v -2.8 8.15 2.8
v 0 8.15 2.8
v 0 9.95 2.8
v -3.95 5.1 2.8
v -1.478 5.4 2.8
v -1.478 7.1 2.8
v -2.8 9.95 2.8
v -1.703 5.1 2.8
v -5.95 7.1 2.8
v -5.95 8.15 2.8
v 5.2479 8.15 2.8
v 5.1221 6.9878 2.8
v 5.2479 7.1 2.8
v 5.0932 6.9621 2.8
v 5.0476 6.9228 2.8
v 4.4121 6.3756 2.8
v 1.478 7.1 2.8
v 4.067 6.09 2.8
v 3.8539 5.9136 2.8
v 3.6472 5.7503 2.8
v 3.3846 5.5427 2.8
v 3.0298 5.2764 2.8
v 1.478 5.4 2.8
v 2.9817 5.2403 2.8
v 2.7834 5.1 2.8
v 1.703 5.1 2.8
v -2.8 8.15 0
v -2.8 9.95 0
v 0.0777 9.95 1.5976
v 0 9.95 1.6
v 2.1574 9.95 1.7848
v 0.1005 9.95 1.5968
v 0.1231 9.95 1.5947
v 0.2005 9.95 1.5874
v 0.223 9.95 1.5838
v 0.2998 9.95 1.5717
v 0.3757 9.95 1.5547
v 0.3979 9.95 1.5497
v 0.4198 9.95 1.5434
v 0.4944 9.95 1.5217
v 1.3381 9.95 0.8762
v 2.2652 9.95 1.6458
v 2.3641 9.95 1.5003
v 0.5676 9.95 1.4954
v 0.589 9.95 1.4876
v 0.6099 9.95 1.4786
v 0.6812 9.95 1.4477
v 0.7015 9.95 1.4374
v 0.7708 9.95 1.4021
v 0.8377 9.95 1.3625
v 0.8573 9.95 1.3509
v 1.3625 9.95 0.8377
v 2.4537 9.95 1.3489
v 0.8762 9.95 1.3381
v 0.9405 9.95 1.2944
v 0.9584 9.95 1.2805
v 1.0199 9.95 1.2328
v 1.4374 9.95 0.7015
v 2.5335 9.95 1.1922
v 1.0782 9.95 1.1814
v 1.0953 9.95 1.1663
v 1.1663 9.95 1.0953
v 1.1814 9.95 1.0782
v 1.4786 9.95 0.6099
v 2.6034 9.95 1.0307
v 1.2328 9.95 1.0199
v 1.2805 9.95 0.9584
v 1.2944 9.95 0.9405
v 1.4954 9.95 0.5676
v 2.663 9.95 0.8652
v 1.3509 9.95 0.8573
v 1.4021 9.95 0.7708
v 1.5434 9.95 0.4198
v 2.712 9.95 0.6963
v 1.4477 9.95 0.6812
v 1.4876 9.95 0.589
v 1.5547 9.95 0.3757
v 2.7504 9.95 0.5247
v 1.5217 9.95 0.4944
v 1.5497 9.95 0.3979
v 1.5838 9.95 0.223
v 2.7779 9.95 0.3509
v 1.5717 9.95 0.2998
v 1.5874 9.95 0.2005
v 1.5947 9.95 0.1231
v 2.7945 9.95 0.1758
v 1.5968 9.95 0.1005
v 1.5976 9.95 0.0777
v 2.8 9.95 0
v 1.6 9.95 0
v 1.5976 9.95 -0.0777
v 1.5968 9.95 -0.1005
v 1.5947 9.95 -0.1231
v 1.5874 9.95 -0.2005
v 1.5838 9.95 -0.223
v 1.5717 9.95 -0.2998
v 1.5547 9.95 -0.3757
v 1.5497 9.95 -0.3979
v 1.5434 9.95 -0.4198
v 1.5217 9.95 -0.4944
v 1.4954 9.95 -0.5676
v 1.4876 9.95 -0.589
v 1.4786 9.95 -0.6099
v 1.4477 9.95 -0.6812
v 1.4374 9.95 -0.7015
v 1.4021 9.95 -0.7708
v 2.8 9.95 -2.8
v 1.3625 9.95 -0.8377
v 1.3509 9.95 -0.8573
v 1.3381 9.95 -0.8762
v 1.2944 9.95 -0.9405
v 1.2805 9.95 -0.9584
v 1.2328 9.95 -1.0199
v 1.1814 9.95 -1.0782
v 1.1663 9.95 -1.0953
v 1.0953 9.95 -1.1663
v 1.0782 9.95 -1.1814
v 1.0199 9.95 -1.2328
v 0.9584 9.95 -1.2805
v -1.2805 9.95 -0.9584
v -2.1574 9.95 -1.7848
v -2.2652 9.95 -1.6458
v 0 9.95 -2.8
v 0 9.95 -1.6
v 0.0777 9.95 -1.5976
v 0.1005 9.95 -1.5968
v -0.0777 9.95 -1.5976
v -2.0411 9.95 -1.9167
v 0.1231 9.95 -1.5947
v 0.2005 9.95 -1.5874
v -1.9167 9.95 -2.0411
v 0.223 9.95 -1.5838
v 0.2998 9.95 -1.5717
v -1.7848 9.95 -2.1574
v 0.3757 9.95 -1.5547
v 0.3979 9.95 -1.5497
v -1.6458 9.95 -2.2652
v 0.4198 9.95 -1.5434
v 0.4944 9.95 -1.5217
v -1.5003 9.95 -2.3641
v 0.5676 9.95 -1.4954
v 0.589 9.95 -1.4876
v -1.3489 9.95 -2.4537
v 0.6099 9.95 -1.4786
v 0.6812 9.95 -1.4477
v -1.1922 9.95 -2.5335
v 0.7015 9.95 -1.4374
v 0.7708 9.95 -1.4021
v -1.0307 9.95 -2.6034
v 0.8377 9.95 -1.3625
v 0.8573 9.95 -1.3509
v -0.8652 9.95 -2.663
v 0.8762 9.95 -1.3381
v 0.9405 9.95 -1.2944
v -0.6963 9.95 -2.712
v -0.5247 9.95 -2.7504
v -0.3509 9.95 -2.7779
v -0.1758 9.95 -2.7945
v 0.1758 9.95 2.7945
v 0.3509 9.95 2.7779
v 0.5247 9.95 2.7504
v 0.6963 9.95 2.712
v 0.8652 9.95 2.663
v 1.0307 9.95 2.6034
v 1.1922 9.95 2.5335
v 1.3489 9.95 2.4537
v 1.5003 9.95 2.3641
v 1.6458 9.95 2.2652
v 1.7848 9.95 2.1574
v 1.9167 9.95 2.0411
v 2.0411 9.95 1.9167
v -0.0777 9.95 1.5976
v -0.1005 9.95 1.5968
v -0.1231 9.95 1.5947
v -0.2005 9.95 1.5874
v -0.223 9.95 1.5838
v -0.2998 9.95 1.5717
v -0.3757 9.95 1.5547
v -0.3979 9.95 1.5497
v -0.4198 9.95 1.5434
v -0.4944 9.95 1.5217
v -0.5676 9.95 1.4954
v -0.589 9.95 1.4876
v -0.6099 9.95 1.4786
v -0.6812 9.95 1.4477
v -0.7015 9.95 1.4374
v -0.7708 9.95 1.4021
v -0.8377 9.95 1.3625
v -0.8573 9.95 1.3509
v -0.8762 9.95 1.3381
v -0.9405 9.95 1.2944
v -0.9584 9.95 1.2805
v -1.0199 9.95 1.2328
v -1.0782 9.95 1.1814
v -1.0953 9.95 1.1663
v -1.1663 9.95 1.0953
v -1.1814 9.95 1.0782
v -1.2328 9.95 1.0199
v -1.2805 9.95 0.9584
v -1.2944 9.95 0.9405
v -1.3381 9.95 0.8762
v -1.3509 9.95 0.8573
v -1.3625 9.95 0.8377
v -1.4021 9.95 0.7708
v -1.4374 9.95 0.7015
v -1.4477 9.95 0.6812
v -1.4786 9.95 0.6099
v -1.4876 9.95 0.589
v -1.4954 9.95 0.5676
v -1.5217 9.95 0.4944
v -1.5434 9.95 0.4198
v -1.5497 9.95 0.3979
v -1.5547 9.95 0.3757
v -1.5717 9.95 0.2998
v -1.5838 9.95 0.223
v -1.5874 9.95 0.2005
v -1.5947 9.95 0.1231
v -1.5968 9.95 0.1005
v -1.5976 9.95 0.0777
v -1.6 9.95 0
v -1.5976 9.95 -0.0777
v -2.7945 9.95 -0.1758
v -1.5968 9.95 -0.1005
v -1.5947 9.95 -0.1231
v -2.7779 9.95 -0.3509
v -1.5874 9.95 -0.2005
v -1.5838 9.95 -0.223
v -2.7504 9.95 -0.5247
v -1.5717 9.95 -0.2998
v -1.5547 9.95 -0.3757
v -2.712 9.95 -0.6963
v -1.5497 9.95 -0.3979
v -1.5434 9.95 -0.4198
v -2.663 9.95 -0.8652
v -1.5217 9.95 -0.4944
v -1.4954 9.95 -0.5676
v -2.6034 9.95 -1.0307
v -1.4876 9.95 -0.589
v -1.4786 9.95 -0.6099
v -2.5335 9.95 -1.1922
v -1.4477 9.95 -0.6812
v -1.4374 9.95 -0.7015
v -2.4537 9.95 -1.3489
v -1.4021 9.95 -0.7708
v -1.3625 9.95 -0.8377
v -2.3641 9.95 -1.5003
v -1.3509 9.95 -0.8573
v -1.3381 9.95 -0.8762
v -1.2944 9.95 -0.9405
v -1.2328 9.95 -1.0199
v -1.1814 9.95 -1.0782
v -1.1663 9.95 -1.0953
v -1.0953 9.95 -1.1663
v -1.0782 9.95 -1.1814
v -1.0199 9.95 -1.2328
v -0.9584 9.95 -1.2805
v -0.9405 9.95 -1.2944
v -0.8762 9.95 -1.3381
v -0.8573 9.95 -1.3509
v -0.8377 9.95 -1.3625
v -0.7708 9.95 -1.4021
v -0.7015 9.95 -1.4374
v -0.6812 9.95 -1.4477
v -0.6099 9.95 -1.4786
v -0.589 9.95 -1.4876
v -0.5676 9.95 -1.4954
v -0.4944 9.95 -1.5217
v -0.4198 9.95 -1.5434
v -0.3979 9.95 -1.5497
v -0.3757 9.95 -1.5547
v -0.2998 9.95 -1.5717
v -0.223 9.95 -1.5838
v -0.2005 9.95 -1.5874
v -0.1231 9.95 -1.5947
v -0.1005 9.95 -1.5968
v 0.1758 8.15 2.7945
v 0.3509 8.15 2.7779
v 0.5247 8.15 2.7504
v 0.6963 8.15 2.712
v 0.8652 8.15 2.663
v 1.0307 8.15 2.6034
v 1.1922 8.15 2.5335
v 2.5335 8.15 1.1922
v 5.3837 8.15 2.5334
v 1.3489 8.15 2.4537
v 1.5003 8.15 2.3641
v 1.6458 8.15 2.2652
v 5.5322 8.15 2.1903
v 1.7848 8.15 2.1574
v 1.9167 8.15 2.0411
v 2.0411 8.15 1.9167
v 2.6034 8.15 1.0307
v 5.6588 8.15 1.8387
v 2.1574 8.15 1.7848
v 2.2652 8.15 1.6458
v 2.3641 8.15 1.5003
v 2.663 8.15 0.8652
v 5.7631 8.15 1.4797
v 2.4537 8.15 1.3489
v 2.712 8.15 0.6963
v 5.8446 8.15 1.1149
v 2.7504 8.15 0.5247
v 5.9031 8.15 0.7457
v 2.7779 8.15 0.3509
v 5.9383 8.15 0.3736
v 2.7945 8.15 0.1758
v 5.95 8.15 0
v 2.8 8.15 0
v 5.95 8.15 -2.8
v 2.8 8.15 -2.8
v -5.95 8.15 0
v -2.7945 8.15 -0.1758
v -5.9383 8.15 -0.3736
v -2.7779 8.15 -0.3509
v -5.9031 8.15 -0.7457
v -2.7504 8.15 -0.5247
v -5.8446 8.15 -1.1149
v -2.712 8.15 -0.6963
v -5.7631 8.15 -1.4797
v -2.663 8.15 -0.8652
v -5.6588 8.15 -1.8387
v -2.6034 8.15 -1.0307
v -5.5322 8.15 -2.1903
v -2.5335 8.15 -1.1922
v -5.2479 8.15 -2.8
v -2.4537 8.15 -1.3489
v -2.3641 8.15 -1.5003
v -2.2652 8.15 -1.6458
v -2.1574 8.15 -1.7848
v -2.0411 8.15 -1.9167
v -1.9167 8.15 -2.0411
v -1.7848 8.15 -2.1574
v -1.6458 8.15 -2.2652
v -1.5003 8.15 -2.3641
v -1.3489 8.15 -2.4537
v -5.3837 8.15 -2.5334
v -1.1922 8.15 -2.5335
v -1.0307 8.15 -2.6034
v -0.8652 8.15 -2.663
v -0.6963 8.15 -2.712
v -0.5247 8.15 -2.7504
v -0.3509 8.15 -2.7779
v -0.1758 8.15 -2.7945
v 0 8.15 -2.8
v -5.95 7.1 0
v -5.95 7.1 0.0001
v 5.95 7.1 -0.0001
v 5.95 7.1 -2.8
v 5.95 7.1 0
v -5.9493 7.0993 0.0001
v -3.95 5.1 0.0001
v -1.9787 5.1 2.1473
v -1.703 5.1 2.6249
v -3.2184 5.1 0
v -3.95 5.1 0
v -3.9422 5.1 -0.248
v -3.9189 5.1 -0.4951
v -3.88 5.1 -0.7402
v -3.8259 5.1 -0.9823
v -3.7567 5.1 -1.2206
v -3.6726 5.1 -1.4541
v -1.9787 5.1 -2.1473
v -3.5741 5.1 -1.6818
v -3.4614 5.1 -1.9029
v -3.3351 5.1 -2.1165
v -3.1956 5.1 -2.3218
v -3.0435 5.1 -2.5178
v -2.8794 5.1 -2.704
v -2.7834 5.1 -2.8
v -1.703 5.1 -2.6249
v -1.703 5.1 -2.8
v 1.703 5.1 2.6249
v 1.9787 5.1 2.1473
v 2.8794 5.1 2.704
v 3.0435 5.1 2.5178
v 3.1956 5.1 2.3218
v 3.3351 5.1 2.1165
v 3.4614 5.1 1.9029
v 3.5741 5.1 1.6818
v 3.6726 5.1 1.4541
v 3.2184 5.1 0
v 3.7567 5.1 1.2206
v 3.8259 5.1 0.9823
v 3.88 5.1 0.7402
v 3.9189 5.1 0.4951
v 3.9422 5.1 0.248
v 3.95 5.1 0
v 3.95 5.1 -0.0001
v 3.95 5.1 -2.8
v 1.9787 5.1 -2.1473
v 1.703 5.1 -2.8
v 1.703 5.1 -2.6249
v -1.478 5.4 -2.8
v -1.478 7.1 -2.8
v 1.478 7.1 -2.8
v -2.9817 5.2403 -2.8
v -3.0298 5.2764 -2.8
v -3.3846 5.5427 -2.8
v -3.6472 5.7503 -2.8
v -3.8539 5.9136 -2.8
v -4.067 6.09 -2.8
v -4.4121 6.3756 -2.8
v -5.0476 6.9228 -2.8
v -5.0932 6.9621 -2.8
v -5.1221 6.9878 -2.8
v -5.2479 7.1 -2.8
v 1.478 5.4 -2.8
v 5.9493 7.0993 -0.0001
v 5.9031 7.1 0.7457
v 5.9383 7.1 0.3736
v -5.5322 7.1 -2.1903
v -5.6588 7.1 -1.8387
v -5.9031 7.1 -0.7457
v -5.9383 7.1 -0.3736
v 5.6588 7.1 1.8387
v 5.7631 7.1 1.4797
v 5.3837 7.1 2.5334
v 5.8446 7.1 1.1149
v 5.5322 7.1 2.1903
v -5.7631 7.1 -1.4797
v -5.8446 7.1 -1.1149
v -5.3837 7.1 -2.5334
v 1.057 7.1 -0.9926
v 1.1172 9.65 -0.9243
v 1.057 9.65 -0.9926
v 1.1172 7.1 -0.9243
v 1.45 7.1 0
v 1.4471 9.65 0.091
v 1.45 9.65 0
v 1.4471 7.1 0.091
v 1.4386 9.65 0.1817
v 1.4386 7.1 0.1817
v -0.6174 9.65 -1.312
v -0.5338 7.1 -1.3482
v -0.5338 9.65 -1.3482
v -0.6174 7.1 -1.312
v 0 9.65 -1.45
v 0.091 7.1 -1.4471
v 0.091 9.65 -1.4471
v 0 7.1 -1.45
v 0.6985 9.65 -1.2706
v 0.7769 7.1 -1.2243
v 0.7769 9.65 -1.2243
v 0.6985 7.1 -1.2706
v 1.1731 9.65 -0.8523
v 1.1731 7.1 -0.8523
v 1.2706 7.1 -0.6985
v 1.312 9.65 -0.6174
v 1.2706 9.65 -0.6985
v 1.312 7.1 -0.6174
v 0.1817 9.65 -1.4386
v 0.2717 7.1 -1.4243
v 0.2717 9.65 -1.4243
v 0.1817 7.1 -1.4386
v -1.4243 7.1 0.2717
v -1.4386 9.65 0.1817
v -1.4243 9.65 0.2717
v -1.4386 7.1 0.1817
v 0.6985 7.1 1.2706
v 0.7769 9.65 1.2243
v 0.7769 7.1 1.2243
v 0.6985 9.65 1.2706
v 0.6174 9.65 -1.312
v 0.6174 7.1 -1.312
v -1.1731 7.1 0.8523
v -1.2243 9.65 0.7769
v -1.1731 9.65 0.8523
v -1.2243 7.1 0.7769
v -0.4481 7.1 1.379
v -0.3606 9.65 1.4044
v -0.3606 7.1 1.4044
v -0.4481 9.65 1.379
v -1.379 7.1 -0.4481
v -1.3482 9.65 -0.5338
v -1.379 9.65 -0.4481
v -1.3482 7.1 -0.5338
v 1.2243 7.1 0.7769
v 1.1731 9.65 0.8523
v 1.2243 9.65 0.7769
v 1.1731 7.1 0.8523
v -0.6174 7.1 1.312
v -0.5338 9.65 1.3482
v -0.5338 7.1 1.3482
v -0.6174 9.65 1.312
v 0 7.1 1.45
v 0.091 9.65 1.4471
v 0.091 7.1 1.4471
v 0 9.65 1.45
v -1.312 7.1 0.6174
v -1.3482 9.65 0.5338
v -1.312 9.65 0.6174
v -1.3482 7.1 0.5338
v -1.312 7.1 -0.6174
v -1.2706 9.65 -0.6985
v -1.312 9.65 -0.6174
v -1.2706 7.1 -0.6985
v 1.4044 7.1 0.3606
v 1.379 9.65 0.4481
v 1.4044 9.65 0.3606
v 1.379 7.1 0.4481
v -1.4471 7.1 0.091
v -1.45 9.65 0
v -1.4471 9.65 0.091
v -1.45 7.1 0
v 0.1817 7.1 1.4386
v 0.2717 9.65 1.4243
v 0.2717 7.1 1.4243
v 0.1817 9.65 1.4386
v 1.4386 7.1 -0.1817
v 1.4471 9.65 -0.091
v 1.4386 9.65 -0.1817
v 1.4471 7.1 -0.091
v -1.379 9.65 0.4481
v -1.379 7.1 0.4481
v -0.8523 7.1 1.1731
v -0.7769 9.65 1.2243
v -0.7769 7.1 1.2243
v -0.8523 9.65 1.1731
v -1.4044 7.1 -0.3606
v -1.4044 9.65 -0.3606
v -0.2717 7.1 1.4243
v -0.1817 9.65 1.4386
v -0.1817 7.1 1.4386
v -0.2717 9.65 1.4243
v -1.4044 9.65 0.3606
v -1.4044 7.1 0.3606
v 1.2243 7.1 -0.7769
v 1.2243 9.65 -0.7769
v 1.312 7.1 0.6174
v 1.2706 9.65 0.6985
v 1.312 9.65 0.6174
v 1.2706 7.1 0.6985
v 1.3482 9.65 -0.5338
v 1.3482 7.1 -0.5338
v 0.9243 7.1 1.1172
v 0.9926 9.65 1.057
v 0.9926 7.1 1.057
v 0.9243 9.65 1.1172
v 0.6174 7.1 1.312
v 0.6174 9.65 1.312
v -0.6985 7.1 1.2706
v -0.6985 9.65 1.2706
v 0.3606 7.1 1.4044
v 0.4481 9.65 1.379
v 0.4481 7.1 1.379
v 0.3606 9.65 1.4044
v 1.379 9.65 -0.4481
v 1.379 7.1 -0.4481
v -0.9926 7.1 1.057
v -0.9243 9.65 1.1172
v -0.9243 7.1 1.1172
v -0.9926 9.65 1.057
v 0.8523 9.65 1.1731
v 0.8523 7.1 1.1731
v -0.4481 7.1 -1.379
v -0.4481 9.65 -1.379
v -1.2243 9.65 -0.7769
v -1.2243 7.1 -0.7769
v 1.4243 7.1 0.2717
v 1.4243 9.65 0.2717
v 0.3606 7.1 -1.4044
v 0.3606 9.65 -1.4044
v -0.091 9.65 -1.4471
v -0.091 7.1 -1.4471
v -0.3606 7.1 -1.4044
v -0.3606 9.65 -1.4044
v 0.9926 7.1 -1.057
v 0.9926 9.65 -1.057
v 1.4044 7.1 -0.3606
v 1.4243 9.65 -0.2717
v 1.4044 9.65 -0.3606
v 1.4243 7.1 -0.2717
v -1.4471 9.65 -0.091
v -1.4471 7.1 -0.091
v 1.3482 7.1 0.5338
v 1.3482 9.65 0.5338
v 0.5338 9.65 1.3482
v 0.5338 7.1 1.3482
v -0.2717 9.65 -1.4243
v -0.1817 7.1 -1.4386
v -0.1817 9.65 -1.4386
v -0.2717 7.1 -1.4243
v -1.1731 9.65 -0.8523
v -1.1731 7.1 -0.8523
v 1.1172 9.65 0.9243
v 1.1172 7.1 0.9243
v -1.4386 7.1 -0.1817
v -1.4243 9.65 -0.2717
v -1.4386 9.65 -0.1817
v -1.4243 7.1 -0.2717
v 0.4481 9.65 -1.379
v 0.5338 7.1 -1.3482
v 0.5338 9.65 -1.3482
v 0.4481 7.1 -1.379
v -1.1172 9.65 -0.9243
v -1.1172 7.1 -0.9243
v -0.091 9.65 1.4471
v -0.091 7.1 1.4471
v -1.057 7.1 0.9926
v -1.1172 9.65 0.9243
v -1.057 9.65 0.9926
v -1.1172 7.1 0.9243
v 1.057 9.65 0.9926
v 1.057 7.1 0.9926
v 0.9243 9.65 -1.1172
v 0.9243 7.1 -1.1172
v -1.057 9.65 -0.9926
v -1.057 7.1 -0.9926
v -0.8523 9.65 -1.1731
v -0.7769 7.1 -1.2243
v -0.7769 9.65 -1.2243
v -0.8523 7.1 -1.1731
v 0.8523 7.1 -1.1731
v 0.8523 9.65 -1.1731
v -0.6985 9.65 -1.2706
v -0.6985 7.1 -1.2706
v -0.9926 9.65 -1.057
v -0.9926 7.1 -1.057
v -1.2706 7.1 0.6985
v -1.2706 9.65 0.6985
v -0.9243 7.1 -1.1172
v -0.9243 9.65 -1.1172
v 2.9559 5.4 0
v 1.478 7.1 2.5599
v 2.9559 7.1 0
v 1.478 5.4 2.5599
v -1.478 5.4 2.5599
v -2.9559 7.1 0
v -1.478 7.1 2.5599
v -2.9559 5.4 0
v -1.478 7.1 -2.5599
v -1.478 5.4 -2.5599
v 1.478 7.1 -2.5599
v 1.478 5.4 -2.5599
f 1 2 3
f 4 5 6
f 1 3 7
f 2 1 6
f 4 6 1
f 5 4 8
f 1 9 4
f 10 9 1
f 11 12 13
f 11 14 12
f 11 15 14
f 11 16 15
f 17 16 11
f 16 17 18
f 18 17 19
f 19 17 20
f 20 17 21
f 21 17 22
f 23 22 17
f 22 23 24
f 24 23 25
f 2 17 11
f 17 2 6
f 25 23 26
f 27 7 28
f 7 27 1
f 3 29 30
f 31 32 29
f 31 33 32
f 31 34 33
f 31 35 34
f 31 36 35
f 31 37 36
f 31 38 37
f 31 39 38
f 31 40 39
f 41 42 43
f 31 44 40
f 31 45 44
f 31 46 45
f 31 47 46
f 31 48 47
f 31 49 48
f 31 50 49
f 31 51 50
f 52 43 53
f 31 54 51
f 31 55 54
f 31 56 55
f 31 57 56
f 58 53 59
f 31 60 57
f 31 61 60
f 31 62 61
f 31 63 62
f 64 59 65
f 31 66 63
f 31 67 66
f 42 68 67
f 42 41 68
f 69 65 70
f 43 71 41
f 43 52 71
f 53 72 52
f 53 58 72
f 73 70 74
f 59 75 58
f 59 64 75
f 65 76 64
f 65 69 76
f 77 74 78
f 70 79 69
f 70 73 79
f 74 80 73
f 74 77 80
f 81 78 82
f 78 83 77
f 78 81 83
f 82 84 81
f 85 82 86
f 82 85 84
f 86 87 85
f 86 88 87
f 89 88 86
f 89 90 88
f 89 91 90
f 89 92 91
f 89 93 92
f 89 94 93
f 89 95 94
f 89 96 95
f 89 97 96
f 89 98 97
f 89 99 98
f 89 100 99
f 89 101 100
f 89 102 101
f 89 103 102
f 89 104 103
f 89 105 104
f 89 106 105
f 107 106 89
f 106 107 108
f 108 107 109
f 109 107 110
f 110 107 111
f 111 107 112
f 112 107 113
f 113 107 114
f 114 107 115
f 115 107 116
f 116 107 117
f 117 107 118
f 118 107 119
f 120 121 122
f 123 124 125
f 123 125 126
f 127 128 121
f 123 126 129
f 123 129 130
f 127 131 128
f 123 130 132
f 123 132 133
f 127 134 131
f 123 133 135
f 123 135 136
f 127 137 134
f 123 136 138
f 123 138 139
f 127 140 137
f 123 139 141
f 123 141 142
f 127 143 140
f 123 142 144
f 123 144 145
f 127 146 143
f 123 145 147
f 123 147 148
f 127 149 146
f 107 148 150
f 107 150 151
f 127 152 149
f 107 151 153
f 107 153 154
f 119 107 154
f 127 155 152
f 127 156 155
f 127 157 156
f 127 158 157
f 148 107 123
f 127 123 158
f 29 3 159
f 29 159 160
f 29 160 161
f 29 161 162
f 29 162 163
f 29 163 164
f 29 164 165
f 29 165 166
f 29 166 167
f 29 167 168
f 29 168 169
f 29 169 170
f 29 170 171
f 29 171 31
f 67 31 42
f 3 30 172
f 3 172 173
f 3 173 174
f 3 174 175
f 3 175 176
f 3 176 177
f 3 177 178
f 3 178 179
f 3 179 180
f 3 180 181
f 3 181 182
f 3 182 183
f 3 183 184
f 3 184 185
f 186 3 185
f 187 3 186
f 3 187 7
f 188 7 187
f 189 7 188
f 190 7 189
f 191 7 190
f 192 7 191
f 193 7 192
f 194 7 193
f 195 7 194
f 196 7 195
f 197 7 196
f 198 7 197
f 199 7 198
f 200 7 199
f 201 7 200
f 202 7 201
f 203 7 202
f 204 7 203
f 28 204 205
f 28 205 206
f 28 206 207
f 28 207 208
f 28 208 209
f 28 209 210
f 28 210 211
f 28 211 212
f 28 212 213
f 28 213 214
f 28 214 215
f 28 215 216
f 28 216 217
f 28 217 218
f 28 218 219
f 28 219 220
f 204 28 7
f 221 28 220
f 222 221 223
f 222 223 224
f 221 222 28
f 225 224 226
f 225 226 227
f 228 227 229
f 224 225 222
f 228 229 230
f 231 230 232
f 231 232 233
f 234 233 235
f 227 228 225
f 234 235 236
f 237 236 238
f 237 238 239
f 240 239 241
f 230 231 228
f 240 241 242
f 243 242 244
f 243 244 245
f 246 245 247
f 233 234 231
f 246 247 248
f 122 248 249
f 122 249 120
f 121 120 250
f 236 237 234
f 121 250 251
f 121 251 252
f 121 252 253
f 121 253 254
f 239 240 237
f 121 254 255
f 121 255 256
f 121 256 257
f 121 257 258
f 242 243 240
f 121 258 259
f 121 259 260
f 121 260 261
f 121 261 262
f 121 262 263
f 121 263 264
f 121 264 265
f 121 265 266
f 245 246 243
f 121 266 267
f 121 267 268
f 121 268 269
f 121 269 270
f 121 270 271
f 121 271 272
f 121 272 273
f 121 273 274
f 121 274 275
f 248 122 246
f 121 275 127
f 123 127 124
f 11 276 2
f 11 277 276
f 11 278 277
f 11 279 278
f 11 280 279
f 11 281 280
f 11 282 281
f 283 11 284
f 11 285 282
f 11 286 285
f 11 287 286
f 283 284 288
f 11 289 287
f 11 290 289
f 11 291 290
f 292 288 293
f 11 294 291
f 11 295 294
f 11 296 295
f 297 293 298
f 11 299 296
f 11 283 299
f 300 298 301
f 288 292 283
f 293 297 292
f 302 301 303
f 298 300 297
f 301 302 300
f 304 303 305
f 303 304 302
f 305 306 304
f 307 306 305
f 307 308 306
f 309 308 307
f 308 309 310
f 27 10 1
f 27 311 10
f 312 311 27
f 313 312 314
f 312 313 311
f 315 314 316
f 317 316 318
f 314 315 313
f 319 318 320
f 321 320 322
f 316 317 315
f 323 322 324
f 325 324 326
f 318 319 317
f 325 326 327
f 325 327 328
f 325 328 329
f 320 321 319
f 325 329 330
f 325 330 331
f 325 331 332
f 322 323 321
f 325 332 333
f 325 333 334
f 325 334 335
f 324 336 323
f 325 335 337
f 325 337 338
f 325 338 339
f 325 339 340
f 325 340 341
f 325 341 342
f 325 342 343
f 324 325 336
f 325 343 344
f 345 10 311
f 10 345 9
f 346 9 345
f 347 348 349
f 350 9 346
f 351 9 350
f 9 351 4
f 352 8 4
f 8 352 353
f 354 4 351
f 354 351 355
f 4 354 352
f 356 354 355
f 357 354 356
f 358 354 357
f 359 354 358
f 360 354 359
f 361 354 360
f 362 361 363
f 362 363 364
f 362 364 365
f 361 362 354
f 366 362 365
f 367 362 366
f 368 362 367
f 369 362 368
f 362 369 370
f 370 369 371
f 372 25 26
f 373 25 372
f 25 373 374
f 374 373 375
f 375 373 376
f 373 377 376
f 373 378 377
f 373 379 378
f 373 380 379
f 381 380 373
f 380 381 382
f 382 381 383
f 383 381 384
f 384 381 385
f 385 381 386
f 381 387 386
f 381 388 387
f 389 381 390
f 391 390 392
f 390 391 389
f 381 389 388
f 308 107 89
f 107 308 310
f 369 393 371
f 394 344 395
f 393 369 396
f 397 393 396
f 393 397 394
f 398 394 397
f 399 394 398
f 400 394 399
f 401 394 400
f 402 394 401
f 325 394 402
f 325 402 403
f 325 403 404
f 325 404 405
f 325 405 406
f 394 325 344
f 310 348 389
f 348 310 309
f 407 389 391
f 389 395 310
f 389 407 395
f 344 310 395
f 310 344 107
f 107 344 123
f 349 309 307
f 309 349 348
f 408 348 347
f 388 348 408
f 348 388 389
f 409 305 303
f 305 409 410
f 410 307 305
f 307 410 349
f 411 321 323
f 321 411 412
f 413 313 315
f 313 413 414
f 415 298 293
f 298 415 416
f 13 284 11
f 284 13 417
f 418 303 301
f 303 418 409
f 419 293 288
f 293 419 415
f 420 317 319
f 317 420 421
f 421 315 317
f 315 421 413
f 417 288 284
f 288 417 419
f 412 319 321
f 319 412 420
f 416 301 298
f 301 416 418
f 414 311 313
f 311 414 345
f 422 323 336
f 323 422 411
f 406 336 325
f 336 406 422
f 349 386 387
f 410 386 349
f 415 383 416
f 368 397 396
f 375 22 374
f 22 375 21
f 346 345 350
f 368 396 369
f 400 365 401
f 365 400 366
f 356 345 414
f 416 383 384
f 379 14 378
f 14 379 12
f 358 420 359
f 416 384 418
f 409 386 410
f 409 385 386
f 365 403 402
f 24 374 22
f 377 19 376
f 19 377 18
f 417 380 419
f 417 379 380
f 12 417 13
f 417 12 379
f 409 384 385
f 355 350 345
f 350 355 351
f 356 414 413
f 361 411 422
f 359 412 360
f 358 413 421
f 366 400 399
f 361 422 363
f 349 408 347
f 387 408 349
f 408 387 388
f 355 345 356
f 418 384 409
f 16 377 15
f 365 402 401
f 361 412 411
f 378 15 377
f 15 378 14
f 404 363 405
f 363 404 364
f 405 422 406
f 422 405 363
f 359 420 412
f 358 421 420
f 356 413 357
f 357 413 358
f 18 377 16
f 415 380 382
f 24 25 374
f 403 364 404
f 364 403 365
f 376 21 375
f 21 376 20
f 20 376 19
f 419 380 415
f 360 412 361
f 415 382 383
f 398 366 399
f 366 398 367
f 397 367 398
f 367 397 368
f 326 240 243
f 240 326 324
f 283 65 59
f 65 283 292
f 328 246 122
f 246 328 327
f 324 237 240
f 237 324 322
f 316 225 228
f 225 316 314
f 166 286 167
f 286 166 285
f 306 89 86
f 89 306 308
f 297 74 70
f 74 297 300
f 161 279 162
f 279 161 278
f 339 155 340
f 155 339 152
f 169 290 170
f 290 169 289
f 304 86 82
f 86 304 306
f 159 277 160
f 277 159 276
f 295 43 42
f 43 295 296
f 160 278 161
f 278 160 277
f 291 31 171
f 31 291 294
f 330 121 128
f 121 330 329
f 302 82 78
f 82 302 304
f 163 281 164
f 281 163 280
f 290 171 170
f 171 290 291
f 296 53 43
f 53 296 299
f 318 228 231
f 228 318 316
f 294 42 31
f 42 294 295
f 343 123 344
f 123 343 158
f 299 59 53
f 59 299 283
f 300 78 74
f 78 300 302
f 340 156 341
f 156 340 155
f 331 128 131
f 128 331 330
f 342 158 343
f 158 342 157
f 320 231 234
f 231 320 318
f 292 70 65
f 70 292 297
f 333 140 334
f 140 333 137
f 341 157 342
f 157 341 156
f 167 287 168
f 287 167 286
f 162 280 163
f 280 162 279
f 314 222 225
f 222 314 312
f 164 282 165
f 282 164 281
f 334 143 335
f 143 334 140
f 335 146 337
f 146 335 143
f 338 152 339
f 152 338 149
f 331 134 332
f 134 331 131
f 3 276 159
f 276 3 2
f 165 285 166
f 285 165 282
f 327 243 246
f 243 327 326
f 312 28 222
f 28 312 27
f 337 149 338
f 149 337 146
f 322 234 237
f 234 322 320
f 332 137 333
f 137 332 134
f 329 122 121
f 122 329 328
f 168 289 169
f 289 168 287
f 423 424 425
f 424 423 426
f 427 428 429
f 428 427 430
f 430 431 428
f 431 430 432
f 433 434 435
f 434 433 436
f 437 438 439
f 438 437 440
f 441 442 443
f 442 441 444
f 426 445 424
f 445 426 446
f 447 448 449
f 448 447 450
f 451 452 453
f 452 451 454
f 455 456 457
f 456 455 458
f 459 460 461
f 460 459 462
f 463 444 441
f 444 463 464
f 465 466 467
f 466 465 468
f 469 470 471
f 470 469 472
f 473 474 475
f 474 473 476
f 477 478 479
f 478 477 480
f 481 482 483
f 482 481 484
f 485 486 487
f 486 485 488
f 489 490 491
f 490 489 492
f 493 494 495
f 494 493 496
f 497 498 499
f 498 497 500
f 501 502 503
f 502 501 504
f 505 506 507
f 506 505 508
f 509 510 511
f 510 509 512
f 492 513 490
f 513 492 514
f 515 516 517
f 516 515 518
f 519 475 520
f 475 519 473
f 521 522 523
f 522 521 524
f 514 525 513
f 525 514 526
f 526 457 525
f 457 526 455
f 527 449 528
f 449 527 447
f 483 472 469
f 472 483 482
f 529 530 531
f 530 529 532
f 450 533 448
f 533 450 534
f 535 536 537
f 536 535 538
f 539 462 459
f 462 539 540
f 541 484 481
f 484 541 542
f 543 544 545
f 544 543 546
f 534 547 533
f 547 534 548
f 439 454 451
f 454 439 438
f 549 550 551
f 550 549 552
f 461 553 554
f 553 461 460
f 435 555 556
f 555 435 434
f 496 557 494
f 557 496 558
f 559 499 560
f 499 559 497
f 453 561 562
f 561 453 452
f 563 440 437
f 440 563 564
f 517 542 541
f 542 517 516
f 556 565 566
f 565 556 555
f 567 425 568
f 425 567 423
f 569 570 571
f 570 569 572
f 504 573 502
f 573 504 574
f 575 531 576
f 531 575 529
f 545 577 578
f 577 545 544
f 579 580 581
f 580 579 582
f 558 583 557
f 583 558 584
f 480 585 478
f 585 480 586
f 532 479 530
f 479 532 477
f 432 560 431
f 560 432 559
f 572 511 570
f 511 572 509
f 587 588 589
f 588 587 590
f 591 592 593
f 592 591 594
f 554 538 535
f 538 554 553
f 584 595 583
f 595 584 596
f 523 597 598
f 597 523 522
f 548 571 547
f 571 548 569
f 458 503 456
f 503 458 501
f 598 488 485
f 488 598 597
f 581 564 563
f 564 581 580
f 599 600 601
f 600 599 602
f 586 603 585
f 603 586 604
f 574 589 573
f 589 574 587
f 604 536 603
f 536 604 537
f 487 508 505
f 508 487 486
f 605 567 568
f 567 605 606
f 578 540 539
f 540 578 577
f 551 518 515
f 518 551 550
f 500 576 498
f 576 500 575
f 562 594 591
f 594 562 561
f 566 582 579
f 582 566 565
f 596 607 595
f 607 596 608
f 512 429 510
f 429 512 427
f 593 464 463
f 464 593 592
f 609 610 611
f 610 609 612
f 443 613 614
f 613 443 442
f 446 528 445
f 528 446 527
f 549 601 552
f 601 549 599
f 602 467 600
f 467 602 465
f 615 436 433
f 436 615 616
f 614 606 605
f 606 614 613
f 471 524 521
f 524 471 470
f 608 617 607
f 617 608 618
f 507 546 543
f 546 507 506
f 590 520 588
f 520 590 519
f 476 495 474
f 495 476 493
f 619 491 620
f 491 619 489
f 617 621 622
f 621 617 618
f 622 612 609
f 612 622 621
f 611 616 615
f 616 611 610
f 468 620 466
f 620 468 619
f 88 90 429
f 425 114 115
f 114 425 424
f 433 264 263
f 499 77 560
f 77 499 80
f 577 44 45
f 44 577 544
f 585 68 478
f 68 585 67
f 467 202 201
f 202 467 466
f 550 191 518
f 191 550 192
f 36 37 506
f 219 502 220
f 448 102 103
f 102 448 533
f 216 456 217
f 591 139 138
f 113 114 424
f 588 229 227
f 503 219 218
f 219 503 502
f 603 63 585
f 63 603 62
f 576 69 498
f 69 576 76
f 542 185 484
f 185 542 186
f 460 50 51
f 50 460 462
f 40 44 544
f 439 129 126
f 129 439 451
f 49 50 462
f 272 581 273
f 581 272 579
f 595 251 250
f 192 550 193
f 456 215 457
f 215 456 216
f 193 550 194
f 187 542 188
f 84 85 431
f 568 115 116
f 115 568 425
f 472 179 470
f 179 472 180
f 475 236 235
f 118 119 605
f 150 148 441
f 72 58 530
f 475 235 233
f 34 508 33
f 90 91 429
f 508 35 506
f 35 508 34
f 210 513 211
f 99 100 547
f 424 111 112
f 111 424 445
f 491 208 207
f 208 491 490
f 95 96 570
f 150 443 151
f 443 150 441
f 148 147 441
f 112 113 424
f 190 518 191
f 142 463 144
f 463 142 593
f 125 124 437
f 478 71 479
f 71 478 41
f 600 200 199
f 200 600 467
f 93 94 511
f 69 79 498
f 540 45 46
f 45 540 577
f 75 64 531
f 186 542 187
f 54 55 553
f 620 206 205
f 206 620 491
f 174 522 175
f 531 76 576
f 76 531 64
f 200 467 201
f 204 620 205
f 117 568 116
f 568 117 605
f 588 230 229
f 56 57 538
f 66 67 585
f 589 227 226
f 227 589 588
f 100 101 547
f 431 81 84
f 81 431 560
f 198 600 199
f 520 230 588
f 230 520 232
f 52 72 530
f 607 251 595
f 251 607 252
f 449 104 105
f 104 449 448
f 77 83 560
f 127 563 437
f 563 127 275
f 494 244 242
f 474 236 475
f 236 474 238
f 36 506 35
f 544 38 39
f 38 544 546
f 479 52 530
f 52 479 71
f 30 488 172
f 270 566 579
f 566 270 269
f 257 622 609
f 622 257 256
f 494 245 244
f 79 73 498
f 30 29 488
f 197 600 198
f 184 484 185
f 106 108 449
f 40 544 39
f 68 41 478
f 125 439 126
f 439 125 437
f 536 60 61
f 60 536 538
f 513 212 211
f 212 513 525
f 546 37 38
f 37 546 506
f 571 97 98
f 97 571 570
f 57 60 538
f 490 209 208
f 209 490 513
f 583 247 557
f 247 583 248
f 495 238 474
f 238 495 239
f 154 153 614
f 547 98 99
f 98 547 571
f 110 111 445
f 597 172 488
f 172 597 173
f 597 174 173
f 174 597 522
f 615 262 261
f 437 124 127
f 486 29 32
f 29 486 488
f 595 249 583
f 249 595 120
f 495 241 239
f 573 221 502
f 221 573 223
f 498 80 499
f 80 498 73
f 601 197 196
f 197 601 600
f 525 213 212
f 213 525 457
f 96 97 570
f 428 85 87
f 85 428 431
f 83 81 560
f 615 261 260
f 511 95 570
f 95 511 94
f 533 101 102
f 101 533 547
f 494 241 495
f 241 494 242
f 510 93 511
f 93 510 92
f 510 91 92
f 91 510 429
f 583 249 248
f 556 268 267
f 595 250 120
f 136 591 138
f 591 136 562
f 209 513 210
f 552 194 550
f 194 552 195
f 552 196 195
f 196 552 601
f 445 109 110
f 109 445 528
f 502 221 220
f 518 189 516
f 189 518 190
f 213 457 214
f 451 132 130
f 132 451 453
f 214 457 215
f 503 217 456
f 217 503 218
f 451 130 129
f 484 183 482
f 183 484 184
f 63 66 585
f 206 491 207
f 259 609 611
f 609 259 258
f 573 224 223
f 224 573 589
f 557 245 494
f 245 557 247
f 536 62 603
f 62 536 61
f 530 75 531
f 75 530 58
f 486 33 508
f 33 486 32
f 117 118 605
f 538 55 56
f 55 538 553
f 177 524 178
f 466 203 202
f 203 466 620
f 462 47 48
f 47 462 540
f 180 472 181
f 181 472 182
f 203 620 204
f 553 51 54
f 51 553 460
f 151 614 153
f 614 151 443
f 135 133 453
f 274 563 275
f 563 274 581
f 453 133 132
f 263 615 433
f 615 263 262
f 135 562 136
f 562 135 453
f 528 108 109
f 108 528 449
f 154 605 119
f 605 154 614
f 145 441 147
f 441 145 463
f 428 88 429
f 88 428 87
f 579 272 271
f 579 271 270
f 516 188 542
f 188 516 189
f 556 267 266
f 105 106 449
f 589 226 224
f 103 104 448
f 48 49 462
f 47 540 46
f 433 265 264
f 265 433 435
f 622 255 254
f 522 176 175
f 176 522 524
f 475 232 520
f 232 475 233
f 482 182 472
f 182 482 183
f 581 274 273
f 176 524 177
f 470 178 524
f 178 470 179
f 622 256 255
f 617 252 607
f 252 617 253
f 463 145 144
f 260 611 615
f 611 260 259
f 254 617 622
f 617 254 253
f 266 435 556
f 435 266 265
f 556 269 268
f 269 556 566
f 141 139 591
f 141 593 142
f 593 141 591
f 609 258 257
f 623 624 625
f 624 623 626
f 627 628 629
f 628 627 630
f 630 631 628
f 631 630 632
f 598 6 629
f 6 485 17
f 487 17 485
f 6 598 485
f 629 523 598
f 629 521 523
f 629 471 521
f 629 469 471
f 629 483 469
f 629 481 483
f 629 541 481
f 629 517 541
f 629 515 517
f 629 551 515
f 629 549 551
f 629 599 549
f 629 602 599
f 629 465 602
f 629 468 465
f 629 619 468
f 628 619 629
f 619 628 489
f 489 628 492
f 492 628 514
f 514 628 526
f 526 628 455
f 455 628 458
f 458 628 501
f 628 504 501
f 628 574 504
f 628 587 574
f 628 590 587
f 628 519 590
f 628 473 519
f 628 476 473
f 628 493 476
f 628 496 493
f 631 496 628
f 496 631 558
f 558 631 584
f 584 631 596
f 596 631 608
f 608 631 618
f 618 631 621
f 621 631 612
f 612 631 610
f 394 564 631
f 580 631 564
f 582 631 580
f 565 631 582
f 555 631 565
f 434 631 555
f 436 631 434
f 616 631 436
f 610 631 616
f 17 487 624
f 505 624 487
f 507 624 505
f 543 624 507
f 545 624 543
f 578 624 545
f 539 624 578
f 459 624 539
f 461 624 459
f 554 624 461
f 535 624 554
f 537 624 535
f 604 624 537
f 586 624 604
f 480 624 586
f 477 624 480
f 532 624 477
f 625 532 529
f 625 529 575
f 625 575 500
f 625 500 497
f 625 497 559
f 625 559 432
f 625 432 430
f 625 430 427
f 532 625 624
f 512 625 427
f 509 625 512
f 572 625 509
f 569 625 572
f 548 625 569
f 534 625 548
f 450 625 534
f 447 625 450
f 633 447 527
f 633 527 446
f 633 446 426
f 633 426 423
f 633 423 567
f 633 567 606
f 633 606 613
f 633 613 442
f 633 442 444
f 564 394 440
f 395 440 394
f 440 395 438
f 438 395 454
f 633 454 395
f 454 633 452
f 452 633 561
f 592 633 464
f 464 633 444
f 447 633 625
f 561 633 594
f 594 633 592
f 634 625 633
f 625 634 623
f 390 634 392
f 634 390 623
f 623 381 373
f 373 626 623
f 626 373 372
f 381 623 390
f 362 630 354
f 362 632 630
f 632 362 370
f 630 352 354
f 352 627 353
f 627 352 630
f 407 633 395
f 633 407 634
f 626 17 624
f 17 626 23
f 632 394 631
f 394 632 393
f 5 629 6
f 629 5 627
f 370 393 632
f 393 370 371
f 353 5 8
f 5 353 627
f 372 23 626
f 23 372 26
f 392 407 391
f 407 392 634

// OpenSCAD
/* [Dimensions] */
//width of the profile slot
opening=5.6;

//thickness of the profile's wall
wallThck=1.8;

//inner width of the profile/nut
inWdth=11.9;

//thickness of the base section
baseThck=1.05;

//thickness of the cone section
coneThck=2;

//nominal screw Diameter M#
screwM=2.5;

//extra spacing for the screw nut
spacing=0.4;
nutChamfer=0.3;




/*  [Hidden] */
fudge=0.1;
ovThck= baseThck+coneThck+wallThck;

$fn=100;


//key-width "S" (DIN 934)
nutS=[
  [2  ,4],
  [2.5,5],
  [3  ,5.5],
  [4  ,7],
  [5  ,8],
  [6  ,10],
  [7  ,11],
  [8  ,13],
  [10  ,17],
  [12  ,19]];
  
ru=(lookup(screwM,nutS)*2)/sqrt(3);

// calculated dias from S
echo("outerDia",ru);

// dias from table DIN 934
nutDias=[
  [2  ,4.32],
  [2.5,5.45],
  [3  ,6.01],
  [4  ,7.66],
  [5  ,8.79],
  [6  ,11.05]];

//thickness "M"
nutThcks=[
  [2  ,1.6],
  [2.5,2],
  [3  ,2.4],
  [4  ,3.2],
  [5  ,4],
  [6  ,5]];

//calculate dia adder for spacing
diaSpcAdd=spacing/cos(30);

//lookup nut Dimensions and calculate side width "a"
nutDia=lookup(screwM,nutDias);
nutThick=lookup(screwM,nutThcks);
a=(nutDia+diaSpcAdd)/2;


translate([0,10-1.85,0])
difference(){
  nutBase();
  //screw drill
  translate([0,wallThck+fudge/2,0]) rotate([90,0,0]) cylinder(d=screwM+spacing,h=ovThck+fudge);
  //screw drill chamfer
  translate([0,wallThck+fudge,0]) rotate([90,0,0]) 
    cylinder(d2=screwM+spacing,d1=screwM+spacing+fudge+nutChamfer,h=nutChamfer+fudge);
  
  // hex nut
  translate([0,-baseThck-coneThck+nutThick]) rotate([90,0,0])
    cylinder(d=nutDia+diaSpcAdd,h=nutThick+fudge,$fn=6);
  // hex nut chamfer
  translate([0,-baseThck-coneThck+nutChamfer]) rotate([90,0,0])
    cylinder(d1=nutDia+diaSpcAdd,d2=nutDia+diaSpcAdd+nutChamfer*2+fudge,h=nutChamfer+fudge,$fn=6);
  // slot  
  translate([0,nutThick/2-fudge/2-coneThck-baseThck]) cube([a,nutThick+fudge,opening+fudge],true);
  // slot chamfer
  translate([0,-coneThck-baseThck+nutChamfer]) rotate([90,0,0]) 
    linear_extrude(nutChamfer+fudge, scale=(a+nutChamfer*2)/a) square([a,opening+fudge],true);
  
}

module nutBase(){
  translate([0,0,]) 
    rotate([-90,0,0]) cylinder(d=opening,h=wallThck);
  
  //rotation stoppers
  for (i=[-1,1]){
    translate([i*opening/4,wallThck/2,i*-opening/4]) cube([opening/2,wallThck,opening/2],true);
    translate([i*inWdth/4,-baseThck/2,i*-opening/4]) cube([inWdth/2,baseThck,opening/2],true);
    rotate([0,i*90,0]) translate([0,-baseThck,0]) rotate([0,90,0]) linear_extrude(opening/2)
      polygon([[-inWdth/2,0],[0,0],[0,-coneThck],[-inWdth/2+coneThck,-coneThck]]);
  }
  
  intersection(){
    translate([0,fudge/2,0]) rotate([90,0,0]) cylinder(d=inWdth,h=baseThck+fudge);
    translate([0,-baseThck/2,]) cube([inWdth,baseThck,opening],true);
  }
  
  intersection(){
    translate([0,-baseThck,0]) rotate([90,0,0]) cylinder(d1=inWdth,d2=inWdth-coneThck*2,h=coneThck);
    translate([0,-coneThck/2-baseThck]) cube([inWdth,coneThck,opening],true);
  }
  
}
